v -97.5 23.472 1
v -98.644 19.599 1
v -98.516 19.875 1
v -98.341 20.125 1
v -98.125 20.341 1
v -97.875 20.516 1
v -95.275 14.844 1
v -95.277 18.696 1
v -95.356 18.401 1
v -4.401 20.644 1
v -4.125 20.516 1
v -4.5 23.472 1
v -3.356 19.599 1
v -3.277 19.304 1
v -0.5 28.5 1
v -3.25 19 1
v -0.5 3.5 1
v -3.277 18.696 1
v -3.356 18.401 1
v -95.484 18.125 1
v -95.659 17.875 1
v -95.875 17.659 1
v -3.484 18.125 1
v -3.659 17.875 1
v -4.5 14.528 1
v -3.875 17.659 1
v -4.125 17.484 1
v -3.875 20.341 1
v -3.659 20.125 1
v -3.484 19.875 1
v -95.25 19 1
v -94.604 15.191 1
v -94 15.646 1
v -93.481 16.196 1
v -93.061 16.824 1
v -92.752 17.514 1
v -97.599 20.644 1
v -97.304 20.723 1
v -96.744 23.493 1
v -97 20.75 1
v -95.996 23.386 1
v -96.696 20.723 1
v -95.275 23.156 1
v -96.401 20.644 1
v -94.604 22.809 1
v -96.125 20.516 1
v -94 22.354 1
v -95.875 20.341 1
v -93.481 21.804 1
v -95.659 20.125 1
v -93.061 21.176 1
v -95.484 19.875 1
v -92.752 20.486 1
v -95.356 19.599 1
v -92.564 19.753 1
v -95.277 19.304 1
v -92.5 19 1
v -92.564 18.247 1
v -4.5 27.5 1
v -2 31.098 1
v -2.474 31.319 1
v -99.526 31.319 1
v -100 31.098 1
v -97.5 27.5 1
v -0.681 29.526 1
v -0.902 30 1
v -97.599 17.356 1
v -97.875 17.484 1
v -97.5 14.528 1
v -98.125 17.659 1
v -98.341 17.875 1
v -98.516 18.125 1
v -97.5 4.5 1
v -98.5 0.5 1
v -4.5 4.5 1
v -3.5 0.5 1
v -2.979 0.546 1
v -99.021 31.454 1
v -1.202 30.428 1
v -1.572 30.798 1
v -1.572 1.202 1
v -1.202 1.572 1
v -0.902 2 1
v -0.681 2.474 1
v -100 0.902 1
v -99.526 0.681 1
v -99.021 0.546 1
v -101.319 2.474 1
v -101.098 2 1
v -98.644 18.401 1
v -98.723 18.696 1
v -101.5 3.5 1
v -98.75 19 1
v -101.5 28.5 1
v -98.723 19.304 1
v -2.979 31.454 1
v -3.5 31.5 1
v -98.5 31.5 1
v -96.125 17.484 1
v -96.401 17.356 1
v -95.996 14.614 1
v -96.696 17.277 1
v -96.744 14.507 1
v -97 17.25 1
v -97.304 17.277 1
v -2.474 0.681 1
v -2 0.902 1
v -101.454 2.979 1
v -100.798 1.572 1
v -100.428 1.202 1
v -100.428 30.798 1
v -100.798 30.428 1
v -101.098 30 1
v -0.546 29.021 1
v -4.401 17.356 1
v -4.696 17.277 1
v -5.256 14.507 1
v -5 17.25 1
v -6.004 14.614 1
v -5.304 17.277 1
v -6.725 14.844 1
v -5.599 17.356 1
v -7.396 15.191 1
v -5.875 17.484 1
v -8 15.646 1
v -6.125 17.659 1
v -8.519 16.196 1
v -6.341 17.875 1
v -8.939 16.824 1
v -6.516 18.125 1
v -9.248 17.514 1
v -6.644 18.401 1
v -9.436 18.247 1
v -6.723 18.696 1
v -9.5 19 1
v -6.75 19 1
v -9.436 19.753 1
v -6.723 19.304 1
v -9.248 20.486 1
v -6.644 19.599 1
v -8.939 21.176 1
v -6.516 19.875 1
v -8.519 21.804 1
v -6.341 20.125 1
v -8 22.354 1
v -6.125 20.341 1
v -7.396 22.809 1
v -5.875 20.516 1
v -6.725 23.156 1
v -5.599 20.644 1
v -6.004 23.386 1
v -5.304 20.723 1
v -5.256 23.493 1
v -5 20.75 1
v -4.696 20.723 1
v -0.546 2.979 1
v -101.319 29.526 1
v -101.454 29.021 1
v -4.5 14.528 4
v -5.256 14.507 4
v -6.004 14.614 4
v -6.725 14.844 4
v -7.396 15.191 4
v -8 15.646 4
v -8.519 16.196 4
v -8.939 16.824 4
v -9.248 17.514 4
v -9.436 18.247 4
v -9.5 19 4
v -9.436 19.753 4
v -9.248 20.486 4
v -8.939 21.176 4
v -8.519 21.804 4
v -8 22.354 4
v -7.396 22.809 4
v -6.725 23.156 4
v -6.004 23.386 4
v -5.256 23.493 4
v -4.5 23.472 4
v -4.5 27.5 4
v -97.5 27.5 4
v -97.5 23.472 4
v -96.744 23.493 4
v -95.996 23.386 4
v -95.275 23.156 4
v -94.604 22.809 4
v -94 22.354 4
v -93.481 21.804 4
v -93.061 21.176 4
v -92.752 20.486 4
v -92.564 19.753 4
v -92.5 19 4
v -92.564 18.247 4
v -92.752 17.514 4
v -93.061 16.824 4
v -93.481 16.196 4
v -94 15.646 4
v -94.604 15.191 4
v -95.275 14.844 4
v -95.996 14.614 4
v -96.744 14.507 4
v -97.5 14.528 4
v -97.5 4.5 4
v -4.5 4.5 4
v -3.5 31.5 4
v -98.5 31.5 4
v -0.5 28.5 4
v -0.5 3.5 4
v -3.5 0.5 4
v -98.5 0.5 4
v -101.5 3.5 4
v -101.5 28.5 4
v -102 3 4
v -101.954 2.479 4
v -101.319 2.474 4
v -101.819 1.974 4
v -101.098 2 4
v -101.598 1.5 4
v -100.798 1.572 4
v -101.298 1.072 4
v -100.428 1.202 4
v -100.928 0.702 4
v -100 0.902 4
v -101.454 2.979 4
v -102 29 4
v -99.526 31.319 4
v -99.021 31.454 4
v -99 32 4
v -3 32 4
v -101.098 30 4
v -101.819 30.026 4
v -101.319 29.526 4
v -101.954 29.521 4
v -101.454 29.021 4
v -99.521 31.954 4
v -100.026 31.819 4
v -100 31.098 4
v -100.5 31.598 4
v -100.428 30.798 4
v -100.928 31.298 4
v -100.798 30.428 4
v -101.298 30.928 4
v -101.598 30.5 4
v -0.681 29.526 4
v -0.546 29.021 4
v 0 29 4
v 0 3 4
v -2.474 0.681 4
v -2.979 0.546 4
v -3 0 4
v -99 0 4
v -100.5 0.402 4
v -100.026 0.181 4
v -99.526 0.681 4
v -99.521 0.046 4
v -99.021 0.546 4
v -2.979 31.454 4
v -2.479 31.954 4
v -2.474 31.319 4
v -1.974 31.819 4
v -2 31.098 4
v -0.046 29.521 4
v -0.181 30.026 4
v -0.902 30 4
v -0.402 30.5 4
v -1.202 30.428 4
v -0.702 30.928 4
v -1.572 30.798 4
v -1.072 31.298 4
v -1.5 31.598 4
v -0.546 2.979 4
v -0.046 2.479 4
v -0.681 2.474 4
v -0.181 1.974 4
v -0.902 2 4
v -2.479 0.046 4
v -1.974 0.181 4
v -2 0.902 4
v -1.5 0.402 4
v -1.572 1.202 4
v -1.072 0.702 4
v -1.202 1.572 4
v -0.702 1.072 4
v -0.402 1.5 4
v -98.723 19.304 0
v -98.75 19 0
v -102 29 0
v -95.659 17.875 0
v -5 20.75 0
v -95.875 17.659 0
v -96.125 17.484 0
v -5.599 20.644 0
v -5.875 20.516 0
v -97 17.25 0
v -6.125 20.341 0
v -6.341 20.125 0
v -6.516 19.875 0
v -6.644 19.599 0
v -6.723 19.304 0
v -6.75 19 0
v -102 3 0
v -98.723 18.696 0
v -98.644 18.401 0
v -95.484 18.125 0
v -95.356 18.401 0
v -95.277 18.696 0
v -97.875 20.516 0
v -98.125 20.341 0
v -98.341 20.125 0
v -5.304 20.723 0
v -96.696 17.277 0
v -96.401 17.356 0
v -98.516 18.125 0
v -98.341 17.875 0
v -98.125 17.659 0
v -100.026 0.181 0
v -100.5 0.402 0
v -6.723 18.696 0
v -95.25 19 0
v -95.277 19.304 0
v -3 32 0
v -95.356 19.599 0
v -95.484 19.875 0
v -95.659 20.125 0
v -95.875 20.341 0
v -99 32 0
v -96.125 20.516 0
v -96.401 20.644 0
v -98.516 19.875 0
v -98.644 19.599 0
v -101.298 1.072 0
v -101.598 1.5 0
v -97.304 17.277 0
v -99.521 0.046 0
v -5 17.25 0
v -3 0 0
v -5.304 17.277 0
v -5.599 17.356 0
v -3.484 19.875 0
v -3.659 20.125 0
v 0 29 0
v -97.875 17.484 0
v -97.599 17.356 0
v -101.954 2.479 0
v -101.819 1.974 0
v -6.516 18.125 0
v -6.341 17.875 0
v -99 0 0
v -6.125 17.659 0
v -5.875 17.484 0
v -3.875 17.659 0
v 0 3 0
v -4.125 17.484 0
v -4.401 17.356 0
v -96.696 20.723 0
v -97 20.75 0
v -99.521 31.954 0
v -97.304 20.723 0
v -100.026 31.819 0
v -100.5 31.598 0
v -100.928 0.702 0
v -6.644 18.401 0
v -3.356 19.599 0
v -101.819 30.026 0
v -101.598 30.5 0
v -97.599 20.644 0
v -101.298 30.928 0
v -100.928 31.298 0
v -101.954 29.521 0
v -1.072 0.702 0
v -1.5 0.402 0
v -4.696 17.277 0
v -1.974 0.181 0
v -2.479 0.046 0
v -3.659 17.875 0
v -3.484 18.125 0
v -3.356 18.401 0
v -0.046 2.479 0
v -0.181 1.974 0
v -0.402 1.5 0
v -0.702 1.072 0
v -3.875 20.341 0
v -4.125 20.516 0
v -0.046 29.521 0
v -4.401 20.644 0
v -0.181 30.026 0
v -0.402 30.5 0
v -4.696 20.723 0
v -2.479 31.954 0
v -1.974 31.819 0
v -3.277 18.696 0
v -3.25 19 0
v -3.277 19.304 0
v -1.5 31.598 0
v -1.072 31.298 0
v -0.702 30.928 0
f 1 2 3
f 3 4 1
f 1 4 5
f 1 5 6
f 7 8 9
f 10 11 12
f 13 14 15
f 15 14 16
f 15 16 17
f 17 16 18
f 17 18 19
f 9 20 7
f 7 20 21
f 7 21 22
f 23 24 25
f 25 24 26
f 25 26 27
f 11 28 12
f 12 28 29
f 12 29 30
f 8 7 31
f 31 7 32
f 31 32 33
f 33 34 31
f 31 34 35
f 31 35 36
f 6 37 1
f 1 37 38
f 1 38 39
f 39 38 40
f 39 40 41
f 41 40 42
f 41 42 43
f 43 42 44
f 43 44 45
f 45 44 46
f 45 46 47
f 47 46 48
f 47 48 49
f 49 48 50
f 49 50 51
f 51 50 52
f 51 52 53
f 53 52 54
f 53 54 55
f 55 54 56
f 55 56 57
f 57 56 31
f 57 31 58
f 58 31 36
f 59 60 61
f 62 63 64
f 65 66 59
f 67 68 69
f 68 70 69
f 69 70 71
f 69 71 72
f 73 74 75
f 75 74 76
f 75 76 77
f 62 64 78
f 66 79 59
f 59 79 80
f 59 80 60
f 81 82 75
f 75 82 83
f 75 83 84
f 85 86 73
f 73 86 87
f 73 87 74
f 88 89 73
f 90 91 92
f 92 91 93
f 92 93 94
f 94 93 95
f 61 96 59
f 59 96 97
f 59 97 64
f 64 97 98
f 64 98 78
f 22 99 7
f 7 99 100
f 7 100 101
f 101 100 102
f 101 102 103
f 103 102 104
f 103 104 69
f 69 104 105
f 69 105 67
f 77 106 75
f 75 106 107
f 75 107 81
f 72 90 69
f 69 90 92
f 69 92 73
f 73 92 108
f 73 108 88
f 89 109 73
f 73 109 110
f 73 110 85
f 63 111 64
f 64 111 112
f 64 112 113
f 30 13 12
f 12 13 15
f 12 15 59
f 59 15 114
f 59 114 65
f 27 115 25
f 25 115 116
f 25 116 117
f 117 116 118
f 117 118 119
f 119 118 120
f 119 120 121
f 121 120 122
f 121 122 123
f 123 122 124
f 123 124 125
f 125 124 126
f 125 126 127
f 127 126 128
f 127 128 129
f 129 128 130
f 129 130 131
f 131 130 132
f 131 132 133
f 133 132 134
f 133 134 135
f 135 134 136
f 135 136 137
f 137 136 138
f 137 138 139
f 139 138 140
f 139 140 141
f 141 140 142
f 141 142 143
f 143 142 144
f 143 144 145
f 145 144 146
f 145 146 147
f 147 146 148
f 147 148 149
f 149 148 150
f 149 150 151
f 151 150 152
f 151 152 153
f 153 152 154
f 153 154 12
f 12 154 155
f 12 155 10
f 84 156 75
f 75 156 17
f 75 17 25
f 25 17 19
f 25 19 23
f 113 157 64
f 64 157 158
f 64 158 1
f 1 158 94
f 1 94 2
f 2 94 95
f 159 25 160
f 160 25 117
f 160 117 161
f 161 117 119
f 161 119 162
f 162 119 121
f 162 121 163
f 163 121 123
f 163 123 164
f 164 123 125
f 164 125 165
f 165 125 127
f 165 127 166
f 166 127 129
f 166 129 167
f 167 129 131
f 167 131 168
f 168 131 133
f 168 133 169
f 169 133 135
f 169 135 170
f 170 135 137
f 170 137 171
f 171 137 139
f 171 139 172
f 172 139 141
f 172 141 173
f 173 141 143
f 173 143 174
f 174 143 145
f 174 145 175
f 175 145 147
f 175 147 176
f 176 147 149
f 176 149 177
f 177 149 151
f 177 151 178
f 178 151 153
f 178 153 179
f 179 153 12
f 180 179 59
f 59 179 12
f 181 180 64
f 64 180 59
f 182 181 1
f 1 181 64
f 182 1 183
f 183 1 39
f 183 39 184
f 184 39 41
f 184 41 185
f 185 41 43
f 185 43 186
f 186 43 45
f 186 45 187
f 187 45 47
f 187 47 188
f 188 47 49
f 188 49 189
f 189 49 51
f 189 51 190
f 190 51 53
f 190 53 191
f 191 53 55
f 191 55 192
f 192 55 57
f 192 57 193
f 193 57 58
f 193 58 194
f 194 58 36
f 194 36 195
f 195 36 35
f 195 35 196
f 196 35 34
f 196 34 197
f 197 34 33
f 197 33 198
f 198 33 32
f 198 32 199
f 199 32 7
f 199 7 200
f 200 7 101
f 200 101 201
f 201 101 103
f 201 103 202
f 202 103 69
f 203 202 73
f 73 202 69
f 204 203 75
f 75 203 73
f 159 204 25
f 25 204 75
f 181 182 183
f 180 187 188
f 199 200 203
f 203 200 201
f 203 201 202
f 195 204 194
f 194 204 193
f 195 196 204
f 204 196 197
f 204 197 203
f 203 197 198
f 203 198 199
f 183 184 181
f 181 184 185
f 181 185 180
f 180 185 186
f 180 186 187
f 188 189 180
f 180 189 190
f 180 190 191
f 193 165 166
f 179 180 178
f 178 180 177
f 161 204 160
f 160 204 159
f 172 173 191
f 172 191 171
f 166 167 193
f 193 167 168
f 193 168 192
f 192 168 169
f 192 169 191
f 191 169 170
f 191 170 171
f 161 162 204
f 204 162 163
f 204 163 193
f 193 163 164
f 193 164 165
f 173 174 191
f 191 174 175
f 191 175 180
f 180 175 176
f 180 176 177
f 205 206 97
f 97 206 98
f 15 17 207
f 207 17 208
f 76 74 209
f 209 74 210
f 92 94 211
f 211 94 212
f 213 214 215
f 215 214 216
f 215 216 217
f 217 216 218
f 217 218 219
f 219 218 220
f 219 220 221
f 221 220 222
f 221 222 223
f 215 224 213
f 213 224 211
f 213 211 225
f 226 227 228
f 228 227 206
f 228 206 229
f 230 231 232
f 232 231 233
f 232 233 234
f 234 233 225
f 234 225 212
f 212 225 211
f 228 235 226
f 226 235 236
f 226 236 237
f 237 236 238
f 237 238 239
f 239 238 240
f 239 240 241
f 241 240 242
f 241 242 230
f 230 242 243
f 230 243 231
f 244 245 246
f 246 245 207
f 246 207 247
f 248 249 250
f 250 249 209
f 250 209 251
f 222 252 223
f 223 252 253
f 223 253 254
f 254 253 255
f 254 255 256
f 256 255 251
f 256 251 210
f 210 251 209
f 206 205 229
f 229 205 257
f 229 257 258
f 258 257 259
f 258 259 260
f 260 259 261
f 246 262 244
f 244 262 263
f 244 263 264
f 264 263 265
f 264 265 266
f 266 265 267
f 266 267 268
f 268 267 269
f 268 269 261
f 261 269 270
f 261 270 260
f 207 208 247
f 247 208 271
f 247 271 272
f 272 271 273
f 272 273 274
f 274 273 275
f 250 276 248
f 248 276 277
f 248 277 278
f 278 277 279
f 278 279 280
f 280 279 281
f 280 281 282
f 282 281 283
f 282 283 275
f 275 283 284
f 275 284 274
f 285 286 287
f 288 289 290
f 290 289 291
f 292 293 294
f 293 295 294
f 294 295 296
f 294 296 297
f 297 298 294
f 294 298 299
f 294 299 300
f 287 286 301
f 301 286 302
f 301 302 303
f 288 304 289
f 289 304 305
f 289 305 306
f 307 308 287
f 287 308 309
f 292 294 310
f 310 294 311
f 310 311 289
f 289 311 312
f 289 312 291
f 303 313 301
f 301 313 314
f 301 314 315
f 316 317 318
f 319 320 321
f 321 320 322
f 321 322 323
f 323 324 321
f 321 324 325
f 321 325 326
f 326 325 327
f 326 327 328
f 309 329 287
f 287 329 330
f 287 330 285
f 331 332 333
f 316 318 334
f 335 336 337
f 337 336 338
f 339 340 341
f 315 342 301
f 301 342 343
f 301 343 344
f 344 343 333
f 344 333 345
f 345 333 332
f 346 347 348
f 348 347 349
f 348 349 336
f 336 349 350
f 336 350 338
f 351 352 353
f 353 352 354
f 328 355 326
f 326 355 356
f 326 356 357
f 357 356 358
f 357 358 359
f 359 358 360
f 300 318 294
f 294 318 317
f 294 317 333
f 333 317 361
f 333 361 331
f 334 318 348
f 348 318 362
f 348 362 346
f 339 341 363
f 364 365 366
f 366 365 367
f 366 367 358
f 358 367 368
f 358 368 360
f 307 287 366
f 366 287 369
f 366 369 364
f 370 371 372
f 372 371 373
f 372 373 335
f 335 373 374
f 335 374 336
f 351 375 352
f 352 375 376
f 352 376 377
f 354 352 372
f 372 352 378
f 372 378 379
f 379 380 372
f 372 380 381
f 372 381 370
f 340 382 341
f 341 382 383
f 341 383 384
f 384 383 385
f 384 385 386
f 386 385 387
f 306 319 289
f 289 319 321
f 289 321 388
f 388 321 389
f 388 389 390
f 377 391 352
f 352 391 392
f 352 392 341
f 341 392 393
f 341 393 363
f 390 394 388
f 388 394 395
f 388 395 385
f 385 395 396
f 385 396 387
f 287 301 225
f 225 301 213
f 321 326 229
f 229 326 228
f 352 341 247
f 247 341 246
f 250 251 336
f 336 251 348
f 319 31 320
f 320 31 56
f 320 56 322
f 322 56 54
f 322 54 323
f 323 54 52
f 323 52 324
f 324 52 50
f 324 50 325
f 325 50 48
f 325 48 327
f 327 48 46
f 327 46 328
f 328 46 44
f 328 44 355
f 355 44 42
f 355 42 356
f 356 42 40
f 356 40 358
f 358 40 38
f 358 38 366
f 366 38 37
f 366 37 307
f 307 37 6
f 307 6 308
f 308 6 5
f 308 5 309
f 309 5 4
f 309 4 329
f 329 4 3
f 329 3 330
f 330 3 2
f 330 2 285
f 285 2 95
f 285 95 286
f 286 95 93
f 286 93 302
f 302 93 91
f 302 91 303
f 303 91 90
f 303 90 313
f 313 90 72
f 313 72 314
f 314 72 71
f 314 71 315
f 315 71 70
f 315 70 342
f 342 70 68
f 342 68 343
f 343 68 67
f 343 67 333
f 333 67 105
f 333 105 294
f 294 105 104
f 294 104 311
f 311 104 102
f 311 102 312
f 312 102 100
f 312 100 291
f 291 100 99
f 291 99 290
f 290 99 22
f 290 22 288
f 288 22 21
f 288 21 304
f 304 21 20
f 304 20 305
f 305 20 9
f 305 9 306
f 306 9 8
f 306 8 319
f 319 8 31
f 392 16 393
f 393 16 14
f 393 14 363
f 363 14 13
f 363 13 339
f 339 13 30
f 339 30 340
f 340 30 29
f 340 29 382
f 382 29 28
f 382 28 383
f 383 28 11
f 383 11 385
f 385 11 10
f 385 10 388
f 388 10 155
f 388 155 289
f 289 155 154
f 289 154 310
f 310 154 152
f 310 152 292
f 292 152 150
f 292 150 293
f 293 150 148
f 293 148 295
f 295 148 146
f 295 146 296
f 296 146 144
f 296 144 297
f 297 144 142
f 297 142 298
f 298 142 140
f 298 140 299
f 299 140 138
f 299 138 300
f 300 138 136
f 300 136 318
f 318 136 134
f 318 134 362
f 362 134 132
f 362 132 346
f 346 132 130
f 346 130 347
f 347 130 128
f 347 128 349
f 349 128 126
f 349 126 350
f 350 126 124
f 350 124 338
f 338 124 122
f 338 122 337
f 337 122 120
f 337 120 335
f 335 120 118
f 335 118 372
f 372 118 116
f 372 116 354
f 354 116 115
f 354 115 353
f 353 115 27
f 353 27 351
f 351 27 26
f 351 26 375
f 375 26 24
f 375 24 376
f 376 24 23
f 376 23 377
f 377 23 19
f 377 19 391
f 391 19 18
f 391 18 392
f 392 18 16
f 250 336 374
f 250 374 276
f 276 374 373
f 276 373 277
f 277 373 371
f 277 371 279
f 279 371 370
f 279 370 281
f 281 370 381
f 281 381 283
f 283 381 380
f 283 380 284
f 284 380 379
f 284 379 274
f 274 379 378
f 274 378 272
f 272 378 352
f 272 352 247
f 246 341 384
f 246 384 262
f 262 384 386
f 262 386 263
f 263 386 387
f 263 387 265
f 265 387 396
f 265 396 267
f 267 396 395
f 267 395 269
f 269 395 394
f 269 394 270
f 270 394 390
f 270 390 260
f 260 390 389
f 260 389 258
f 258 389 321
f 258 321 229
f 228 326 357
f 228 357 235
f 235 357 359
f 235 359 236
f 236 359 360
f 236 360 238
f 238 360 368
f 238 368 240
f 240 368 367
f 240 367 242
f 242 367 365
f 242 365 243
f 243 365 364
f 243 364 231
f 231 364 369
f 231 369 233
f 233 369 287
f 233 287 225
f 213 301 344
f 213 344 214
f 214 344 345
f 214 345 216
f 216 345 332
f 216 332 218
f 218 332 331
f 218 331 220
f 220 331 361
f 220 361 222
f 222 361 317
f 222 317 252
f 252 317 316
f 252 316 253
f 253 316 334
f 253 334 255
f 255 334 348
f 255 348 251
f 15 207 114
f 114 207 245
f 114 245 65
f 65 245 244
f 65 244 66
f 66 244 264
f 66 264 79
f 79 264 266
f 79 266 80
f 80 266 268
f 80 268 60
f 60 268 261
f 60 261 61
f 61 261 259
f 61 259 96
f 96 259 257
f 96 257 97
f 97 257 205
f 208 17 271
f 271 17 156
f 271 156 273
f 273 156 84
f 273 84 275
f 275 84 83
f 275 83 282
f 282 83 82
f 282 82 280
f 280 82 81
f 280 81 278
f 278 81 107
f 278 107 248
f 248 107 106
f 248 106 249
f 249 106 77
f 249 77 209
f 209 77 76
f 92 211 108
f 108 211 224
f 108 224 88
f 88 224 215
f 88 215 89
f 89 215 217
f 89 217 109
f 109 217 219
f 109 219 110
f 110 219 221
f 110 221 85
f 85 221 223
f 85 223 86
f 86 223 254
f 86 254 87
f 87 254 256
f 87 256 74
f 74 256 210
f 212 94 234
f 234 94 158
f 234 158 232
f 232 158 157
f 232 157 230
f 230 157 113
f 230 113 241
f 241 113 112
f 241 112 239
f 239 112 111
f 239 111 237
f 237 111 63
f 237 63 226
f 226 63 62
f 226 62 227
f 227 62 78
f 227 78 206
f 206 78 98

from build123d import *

# Parameters (mm, degrees)
SKETCH1_W           = 102
SKETCH1_H           = 32
BOSS_EXTRUDE1_DEPTH = 1
SKETCH2_W           = 102
SKETCH2_H           = 32
SKETCH2_W_2         = 101
SKETCH2_H_2         = 31
BOSS_EXTRUDE2_DEPTH = 3
SKETCH3_R           = 1.75
CUT_EXTRUDE1_DEPTH  = 107.943910533
FILLET1_R           = 3


with BuildPart() as part:
    # Sketch1 → Boss-Extrude1 (new body)
    with BuildSketch(Plane.XY):
        with Locations((-51, 16)):
            Rectangle(SKETCH1_W, SKETCH1_H)
    extrude(amount=BOSS_EXTRUDE1_DEPTH)

    # Sketch2 → Boss-Extrude2 (add)
    # profile 1 of 2: a face of its own
    with BuildSketch(Plane.XY.offset(1)):
        with Locations((-51, 16)):
            Rectangle(SKETCH2_W, SKETCH2_H)
        with Locations((-51, 16)):
            Rectangle(SKETCH2_W_2, SKETCH2_H_2, mode=Mode.SUBTRACT)
    # profile 2 of 2: a face of its own
    with BuildSketch(Plane.XY.offset(1)):
        with BuildLine():
            Line((-97.5, 14.527864045), (-97.5, 4.5))
            Line((-97.5, 4.5), (-4.5, 4.5))
            Line((-4.5, 4.5), (-4.5, 14.527864045))
            ThreePointArc((-4.5, 14.527864045), (-9.5, 19), (-4.5, 23.472135955))
            Line((-4.5, 23.472135955), (-4.5, 27.5))
            Line((-4.5, 27.5), (-97.5, 27.5))
            Line((-97.5, 27.5), (-97.5, 23.472135955))
            ThreePointArc((-97.5, 23.472135955), (-92.5, 19), (-97.5, 14.527864045))
        make_face()
    extrude(amount=BOSS_EXTRUDE2_DEPTH)

    # Sketch3 → Cut-Extrude1 (cut, through all)
    with BuildSketch(Plane.XY.offset(1)):
        with Locations((-97, 19)):
            Circle(SKETCH3_R)
        with Locations((-5, 19)):
            Circle(SKETCH3_R)
    extrude(amount=-CUT_EXTRUDE1_DEPTH, mode=Mode.SUBTRACT)

    # Fillet1
    fillet1_edges = [part.edges().sort_by_distance(p)[0] for p in [
        (-101.5, 31.5, 2.5),
        (-0.5, 31.5, 2.5),
        (-0.5, 0.5, 2.5),
        (-101.5, 0.5, 2.5),
        (0, 0, 2),
        (-102, 0, 2),
        (-102, 32, 2),
        (0, 32, 2),
    ]]
    fillet(fillet1_edges, radius=FILLET1_R)


solid = part.part
